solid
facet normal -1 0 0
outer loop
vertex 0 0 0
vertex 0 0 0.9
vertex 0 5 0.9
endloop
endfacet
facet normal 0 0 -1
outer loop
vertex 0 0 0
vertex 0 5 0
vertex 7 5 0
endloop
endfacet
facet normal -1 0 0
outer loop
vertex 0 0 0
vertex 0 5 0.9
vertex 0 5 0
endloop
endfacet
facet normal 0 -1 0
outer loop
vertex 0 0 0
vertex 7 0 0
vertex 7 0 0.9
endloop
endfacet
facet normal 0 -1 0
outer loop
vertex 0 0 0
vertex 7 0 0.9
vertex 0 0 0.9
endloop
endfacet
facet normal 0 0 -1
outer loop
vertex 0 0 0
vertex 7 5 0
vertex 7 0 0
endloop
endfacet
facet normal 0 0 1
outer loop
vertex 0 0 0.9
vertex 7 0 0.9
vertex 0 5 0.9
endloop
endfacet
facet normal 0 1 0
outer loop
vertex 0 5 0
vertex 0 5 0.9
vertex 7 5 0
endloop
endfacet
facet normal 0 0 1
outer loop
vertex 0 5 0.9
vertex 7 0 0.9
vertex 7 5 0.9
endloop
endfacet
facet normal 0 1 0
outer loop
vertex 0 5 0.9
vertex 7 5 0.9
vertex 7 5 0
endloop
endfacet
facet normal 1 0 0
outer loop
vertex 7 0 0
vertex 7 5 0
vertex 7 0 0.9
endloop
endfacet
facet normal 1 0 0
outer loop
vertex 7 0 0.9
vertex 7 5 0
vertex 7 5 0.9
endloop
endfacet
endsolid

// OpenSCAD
/* Warning, this is a very basic generator with a lot of approximation 
input data : [VDFN, H8A, 7x5x0.9mm, 6, , A, C04-01010A]
generated by com.zoubworld.electronics.cad.model3d.Basic
Date : Sun Feb 15 10:50:49 CET 2026
*/

//body
color("black")
translate([0,0,0])
cube([7.0,5.0,0.9], center=false);
